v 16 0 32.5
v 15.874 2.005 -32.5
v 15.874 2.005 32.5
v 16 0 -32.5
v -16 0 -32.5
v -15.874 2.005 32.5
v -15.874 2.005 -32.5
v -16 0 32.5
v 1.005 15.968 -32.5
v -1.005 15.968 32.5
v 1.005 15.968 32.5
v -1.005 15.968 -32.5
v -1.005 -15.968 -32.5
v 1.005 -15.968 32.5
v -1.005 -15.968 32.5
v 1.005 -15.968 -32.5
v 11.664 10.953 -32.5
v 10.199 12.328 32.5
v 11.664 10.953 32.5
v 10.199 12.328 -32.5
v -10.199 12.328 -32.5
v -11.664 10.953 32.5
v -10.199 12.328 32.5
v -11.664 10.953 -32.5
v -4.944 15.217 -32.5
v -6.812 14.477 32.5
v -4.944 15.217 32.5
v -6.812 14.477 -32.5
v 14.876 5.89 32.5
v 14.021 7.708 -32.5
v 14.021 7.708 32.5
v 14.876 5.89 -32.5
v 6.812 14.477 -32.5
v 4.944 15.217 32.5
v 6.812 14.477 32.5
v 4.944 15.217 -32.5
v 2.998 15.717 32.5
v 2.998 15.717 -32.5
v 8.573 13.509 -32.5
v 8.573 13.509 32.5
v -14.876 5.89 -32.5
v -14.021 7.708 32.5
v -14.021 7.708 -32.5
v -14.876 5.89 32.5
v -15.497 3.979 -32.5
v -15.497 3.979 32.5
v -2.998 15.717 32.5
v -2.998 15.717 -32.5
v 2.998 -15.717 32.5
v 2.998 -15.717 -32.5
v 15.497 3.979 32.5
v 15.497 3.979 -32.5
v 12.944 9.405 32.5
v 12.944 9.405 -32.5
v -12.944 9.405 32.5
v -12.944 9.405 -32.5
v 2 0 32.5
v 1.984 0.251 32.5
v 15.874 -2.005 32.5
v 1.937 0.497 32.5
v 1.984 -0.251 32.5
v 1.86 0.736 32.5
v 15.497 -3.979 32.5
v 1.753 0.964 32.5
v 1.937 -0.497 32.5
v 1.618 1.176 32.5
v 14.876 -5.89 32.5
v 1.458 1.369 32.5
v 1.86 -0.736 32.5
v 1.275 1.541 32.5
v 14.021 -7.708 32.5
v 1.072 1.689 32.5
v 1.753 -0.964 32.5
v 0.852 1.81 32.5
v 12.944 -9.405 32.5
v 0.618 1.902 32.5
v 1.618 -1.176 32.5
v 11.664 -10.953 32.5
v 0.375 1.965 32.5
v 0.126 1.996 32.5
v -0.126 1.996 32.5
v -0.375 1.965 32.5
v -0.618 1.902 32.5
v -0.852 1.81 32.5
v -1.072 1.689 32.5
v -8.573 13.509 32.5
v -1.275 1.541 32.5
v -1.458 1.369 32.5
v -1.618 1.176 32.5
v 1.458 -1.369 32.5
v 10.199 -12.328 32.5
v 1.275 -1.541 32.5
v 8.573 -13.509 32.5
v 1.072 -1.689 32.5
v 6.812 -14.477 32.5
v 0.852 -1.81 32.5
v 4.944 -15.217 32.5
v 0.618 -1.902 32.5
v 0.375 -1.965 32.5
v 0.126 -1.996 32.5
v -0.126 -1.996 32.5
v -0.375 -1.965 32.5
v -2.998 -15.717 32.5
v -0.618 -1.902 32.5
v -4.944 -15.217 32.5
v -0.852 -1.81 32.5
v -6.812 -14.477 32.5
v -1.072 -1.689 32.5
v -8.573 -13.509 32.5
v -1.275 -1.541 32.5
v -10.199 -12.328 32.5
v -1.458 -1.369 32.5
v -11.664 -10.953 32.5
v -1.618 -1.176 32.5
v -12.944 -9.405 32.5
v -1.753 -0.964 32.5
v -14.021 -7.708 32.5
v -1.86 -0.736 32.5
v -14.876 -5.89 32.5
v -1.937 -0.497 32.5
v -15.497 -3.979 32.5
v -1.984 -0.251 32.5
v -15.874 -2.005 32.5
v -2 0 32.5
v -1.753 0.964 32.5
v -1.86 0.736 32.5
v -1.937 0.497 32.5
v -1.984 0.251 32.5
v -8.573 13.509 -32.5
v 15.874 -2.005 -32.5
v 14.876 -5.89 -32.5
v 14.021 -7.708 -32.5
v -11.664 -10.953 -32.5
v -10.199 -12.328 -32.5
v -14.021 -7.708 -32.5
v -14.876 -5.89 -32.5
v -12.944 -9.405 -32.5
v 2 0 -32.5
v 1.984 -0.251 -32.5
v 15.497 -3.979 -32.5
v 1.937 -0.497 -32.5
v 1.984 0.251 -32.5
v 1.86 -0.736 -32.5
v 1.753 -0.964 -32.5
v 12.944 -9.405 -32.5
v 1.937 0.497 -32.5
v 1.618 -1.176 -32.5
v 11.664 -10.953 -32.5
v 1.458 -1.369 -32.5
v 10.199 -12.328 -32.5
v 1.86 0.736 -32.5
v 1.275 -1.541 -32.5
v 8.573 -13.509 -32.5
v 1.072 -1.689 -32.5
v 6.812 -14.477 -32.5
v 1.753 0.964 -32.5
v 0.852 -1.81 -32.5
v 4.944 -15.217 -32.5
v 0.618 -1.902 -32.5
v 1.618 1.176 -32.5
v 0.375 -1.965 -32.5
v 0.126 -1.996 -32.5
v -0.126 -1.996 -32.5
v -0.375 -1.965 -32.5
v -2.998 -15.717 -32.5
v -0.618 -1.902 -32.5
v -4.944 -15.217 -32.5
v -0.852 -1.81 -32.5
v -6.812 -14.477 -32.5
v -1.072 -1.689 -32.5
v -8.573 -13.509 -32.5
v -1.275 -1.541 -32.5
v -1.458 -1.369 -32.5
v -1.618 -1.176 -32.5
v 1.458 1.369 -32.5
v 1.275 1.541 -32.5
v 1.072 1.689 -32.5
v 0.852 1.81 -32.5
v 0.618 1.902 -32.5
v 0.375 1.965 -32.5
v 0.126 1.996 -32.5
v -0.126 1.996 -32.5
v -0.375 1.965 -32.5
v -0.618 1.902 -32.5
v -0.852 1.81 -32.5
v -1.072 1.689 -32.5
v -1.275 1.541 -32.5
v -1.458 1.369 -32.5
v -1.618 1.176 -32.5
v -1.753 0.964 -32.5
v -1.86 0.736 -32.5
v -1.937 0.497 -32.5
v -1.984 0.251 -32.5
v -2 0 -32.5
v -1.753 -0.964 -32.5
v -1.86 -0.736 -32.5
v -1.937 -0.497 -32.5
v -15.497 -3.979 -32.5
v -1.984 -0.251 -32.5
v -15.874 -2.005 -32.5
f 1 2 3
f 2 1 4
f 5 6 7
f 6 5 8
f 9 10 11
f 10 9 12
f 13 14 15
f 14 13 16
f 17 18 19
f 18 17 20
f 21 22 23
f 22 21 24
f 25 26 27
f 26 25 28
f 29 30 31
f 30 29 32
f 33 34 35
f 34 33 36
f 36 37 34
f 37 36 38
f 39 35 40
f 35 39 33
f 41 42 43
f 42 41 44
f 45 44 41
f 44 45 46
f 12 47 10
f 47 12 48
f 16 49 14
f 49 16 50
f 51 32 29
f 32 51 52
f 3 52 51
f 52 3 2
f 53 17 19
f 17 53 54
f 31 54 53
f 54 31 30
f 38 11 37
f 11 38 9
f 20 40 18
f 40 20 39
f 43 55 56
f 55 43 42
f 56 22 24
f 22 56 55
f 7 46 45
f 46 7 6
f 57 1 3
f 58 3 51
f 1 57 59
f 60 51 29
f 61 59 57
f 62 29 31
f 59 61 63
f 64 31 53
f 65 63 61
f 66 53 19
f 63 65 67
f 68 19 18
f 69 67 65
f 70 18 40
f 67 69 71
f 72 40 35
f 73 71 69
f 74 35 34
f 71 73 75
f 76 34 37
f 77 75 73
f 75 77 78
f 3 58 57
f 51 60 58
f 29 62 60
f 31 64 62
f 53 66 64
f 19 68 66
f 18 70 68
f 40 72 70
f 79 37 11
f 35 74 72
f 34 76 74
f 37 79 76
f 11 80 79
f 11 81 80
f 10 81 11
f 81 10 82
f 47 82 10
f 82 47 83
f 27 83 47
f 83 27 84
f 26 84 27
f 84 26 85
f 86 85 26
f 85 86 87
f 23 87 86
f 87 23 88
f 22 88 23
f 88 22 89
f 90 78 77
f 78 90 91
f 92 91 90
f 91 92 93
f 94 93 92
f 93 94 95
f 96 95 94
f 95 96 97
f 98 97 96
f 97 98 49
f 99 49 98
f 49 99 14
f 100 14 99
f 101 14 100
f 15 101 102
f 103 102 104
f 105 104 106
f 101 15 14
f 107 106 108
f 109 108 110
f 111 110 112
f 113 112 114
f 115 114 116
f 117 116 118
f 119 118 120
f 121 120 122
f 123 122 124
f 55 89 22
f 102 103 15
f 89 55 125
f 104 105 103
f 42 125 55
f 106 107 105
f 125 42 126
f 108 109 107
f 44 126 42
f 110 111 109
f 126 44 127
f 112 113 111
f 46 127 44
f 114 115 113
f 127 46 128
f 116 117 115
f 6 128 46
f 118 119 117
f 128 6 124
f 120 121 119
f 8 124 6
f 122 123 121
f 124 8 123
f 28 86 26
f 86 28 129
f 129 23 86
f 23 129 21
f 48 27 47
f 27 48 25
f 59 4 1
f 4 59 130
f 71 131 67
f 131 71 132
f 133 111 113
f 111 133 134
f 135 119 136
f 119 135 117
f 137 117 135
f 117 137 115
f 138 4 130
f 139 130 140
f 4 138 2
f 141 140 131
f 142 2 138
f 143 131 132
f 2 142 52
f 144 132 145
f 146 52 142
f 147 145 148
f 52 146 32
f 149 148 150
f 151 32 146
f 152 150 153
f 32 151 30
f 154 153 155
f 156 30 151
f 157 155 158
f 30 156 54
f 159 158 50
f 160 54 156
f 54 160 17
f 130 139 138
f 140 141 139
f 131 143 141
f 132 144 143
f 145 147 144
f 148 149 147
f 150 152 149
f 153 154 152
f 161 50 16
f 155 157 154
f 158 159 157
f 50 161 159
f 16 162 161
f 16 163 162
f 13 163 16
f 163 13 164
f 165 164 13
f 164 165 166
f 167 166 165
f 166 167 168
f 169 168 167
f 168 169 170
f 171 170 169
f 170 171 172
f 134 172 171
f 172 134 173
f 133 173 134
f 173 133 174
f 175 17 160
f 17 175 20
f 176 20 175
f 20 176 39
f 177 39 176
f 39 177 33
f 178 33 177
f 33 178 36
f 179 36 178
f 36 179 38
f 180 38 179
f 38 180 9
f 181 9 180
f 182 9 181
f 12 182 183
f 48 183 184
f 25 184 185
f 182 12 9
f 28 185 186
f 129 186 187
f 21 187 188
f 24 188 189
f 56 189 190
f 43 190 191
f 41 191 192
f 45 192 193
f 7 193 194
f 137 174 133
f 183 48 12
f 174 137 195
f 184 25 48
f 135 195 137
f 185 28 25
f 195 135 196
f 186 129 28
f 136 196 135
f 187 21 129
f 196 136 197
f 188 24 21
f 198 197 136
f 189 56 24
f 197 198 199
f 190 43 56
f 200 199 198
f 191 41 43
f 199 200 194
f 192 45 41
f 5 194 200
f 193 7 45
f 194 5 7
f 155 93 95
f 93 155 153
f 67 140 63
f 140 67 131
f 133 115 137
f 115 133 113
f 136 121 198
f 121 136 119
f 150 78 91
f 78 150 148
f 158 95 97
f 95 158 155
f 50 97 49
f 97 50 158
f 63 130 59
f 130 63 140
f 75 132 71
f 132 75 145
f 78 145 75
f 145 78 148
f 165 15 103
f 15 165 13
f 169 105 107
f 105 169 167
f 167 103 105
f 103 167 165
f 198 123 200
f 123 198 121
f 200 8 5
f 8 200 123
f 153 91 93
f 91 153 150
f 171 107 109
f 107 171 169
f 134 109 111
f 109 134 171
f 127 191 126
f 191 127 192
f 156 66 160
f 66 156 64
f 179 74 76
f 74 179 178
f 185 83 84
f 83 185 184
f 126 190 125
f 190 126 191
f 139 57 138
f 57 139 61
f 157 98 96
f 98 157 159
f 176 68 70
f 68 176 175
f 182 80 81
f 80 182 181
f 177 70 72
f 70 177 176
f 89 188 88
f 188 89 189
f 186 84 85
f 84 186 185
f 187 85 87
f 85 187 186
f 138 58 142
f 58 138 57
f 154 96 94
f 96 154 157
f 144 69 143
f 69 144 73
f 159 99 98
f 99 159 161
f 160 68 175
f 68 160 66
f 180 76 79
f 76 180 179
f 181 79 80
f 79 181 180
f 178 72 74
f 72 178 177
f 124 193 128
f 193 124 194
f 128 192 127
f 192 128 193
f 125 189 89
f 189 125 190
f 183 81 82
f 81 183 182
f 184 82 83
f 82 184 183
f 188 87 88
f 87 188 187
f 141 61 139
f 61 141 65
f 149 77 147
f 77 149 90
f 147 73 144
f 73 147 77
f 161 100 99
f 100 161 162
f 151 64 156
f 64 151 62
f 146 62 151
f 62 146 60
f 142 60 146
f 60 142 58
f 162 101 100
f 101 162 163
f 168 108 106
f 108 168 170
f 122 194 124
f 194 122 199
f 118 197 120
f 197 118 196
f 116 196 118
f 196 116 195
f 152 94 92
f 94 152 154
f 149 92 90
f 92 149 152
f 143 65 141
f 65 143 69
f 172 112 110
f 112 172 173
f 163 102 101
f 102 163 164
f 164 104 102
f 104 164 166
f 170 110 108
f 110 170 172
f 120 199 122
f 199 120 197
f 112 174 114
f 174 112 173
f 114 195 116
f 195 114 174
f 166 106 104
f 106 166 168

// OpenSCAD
$fn = 50;


difference() {
	union() {
		translate(v = [0, 0, -32.5000000000]) {
			cylinder(h = 65, r = 16.0000000000);
		}
	}
	union() {
		translate(v = [0, 0, -100.0000000000]) {
			cylinder(h = 200, r = 2);
		}
	}
}
